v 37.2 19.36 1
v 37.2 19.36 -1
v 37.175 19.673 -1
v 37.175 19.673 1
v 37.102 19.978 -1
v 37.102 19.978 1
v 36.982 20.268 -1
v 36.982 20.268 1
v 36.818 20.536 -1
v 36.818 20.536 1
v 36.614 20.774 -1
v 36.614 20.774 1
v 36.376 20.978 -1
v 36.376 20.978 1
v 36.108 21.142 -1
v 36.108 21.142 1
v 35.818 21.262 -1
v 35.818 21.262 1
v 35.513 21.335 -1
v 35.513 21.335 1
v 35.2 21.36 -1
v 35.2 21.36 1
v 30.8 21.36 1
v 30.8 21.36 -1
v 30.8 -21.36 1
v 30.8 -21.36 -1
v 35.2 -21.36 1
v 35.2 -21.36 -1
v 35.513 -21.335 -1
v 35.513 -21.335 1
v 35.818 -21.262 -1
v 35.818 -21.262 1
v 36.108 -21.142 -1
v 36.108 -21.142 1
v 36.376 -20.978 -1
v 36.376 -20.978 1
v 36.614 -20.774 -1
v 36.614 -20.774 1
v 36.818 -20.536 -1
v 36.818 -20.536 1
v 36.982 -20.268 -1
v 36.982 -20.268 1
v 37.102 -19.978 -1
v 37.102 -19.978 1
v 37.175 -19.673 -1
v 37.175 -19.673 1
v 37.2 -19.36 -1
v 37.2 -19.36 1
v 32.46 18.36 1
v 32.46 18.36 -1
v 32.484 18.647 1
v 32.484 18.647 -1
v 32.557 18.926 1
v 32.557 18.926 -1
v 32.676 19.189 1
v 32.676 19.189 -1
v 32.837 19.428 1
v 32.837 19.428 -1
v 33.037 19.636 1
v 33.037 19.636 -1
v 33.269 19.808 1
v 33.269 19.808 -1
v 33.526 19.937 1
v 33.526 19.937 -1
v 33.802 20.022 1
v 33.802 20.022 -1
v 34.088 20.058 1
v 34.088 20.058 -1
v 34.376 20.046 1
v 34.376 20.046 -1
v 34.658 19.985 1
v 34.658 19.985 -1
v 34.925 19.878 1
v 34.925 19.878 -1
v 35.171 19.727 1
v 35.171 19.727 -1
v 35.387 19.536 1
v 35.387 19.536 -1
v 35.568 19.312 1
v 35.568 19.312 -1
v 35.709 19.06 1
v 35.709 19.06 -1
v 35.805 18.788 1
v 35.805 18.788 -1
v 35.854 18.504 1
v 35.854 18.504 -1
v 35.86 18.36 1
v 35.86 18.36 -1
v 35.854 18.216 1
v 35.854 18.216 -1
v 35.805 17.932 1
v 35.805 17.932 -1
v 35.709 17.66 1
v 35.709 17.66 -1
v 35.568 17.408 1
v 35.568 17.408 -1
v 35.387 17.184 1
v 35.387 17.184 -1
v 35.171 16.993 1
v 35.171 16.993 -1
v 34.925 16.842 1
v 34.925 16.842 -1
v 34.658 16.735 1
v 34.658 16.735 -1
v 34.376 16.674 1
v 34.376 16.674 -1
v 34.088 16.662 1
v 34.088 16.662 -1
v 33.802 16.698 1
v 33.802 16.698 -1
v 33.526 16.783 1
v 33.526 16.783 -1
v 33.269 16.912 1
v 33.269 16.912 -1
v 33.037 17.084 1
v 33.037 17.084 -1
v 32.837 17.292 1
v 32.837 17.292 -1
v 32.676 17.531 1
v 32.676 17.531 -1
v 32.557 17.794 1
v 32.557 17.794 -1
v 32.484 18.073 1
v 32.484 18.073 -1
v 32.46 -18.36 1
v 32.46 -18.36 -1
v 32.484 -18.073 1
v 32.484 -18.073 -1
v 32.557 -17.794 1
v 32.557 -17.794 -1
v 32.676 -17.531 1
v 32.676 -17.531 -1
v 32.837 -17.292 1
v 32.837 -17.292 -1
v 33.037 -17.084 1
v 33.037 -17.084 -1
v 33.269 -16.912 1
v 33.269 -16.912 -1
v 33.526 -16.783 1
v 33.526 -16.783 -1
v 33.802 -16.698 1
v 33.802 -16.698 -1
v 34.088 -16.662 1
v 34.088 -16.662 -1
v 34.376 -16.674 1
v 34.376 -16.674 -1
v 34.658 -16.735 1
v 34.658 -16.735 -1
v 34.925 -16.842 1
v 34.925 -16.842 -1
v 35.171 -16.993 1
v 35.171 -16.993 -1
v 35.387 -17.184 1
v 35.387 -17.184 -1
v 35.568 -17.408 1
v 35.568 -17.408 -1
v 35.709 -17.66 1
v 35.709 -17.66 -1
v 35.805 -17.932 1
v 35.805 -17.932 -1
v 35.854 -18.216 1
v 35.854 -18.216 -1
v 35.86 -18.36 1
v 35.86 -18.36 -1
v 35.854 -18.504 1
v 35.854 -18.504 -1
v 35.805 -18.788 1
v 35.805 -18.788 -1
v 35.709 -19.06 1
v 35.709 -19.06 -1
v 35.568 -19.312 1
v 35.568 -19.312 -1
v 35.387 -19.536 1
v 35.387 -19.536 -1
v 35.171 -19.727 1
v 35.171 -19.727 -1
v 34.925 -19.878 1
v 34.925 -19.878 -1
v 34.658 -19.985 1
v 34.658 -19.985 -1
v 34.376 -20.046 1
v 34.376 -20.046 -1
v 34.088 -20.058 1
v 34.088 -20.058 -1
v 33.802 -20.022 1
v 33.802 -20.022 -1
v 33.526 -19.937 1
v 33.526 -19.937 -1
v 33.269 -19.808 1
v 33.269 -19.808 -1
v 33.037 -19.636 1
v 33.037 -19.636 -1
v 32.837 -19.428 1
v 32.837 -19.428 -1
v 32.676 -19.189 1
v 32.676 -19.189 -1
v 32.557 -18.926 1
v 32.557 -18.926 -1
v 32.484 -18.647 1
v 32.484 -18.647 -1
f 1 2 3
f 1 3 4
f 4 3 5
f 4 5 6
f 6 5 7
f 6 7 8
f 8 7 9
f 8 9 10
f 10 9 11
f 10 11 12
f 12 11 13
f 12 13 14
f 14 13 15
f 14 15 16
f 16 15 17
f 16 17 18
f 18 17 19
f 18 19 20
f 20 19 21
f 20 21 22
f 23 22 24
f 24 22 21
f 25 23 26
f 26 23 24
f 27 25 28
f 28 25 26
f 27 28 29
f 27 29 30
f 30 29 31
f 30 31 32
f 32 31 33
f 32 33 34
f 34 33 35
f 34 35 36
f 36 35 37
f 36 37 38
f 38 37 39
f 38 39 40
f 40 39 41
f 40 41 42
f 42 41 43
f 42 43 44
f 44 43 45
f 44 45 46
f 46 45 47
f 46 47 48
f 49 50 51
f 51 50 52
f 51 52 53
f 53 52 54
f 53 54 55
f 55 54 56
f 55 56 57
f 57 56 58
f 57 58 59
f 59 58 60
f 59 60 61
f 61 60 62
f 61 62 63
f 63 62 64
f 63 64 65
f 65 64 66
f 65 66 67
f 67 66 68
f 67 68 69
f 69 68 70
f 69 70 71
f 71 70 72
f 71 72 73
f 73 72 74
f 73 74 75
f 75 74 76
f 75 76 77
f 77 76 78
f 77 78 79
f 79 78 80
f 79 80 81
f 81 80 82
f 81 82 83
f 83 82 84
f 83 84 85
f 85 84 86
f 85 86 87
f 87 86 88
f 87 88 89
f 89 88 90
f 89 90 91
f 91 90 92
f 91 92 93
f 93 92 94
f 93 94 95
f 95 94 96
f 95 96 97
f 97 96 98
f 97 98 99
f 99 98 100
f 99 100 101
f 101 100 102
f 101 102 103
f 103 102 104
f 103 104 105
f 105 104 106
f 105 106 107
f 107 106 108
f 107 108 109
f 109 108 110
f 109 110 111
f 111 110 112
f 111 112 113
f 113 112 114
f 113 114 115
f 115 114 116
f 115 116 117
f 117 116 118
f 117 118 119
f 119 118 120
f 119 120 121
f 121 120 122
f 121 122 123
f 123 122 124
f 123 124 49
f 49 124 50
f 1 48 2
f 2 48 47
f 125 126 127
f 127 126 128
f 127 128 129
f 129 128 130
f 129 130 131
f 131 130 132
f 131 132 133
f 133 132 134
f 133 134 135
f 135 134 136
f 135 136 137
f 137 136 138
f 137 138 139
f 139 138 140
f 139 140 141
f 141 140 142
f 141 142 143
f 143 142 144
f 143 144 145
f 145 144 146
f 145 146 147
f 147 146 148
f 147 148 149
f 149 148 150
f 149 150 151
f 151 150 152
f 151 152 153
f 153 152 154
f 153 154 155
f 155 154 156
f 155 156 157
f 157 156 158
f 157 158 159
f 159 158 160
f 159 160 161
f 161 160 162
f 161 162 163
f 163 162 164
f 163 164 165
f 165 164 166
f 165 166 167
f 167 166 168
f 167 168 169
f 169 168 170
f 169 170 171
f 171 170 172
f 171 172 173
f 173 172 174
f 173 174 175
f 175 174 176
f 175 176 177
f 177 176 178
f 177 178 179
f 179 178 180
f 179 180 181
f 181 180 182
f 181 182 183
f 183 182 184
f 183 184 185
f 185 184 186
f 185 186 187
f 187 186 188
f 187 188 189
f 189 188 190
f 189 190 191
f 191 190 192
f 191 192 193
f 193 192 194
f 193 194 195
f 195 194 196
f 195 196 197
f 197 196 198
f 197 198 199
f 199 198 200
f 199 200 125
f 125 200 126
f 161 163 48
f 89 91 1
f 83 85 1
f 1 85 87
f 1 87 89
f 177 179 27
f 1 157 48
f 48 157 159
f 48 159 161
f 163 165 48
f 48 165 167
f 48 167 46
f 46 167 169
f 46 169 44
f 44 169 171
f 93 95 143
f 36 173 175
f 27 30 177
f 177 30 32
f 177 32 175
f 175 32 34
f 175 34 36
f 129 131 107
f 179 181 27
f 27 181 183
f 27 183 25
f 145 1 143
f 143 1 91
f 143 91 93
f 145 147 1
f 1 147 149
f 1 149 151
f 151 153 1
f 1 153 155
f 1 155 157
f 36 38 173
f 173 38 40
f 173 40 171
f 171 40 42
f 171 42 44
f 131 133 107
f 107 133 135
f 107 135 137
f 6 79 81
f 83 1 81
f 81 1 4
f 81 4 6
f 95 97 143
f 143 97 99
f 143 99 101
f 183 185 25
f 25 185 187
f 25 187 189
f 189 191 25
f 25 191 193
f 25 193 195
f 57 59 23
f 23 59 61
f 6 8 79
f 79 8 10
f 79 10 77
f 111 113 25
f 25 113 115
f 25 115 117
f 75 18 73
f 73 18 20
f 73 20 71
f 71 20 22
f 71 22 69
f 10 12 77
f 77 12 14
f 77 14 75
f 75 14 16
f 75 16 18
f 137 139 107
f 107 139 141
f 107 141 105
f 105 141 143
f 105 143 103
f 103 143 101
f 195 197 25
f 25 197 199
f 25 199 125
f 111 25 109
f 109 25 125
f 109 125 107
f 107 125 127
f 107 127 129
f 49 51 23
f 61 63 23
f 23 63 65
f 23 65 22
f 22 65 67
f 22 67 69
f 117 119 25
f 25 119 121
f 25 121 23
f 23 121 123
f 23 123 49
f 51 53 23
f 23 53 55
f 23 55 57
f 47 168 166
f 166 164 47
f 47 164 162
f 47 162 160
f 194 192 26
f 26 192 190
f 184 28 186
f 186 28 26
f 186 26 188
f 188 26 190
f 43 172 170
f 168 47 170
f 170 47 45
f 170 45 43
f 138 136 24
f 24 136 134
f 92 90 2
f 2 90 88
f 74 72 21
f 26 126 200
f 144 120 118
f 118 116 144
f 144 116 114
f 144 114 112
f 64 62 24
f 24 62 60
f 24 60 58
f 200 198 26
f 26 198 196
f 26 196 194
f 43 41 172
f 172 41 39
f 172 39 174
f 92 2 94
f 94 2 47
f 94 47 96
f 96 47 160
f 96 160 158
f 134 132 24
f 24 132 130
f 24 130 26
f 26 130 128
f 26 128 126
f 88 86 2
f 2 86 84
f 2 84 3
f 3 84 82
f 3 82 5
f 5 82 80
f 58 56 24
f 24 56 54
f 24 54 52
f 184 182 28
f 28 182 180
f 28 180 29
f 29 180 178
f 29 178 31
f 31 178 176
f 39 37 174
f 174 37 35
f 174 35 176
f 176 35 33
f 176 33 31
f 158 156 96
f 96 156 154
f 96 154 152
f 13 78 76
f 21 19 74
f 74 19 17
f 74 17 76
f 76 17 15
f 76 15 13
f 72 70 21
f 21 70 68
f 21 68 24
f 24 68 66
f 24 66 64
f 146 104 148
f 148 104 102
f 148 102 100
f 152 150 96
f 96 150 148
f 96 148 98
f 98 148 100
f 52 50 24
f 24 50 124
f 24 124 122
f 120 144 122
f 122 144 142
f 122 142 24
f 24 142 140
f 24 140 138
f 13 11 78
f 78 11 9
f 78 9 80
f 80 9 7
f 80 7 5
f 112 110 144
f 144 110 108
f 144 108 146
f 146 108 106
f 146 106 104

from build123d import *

# Parameters (mm, degrees)
SKETCH1_R           = 1.7
BOSS_EXTRUDE1_DEPTH = 1


with BuildPart() as part:
    # Sketch1 → Boss-Extrude1 (new body, symmetric)
    with BuildSketch(Plane.XY):
        with BuildLine():
            Line((35.2, 21.36), (30.8, 21.36))
            Line((30.8, 21.36), (30.8, -21.36))
            Line((30.8, -21.36), (35.2, -21.36))
            ThreePointArc((35.2, -21.36), (36.614213562, -20.774213562), (37.2, -19.36))
            Line((37.2, -19.36), (37.2, 19.36))
            ThreePointArc((37.2, 19.36), (36.614213562, 20.774213562), (35.2, 21.36))
        make_face()
        with Locations((34.16, -18.36)):
            Circle(SKETCH1_R, mode=Mode.SUBTRACT)
        with Locations((34.16, 18.36)):
            Circle(SKETCH1_R, mode=Mode.SUBTRACT)
    extrude(amount=BOSS_EXTRUDE1_DEPTH, both=True)


solid = part.part
